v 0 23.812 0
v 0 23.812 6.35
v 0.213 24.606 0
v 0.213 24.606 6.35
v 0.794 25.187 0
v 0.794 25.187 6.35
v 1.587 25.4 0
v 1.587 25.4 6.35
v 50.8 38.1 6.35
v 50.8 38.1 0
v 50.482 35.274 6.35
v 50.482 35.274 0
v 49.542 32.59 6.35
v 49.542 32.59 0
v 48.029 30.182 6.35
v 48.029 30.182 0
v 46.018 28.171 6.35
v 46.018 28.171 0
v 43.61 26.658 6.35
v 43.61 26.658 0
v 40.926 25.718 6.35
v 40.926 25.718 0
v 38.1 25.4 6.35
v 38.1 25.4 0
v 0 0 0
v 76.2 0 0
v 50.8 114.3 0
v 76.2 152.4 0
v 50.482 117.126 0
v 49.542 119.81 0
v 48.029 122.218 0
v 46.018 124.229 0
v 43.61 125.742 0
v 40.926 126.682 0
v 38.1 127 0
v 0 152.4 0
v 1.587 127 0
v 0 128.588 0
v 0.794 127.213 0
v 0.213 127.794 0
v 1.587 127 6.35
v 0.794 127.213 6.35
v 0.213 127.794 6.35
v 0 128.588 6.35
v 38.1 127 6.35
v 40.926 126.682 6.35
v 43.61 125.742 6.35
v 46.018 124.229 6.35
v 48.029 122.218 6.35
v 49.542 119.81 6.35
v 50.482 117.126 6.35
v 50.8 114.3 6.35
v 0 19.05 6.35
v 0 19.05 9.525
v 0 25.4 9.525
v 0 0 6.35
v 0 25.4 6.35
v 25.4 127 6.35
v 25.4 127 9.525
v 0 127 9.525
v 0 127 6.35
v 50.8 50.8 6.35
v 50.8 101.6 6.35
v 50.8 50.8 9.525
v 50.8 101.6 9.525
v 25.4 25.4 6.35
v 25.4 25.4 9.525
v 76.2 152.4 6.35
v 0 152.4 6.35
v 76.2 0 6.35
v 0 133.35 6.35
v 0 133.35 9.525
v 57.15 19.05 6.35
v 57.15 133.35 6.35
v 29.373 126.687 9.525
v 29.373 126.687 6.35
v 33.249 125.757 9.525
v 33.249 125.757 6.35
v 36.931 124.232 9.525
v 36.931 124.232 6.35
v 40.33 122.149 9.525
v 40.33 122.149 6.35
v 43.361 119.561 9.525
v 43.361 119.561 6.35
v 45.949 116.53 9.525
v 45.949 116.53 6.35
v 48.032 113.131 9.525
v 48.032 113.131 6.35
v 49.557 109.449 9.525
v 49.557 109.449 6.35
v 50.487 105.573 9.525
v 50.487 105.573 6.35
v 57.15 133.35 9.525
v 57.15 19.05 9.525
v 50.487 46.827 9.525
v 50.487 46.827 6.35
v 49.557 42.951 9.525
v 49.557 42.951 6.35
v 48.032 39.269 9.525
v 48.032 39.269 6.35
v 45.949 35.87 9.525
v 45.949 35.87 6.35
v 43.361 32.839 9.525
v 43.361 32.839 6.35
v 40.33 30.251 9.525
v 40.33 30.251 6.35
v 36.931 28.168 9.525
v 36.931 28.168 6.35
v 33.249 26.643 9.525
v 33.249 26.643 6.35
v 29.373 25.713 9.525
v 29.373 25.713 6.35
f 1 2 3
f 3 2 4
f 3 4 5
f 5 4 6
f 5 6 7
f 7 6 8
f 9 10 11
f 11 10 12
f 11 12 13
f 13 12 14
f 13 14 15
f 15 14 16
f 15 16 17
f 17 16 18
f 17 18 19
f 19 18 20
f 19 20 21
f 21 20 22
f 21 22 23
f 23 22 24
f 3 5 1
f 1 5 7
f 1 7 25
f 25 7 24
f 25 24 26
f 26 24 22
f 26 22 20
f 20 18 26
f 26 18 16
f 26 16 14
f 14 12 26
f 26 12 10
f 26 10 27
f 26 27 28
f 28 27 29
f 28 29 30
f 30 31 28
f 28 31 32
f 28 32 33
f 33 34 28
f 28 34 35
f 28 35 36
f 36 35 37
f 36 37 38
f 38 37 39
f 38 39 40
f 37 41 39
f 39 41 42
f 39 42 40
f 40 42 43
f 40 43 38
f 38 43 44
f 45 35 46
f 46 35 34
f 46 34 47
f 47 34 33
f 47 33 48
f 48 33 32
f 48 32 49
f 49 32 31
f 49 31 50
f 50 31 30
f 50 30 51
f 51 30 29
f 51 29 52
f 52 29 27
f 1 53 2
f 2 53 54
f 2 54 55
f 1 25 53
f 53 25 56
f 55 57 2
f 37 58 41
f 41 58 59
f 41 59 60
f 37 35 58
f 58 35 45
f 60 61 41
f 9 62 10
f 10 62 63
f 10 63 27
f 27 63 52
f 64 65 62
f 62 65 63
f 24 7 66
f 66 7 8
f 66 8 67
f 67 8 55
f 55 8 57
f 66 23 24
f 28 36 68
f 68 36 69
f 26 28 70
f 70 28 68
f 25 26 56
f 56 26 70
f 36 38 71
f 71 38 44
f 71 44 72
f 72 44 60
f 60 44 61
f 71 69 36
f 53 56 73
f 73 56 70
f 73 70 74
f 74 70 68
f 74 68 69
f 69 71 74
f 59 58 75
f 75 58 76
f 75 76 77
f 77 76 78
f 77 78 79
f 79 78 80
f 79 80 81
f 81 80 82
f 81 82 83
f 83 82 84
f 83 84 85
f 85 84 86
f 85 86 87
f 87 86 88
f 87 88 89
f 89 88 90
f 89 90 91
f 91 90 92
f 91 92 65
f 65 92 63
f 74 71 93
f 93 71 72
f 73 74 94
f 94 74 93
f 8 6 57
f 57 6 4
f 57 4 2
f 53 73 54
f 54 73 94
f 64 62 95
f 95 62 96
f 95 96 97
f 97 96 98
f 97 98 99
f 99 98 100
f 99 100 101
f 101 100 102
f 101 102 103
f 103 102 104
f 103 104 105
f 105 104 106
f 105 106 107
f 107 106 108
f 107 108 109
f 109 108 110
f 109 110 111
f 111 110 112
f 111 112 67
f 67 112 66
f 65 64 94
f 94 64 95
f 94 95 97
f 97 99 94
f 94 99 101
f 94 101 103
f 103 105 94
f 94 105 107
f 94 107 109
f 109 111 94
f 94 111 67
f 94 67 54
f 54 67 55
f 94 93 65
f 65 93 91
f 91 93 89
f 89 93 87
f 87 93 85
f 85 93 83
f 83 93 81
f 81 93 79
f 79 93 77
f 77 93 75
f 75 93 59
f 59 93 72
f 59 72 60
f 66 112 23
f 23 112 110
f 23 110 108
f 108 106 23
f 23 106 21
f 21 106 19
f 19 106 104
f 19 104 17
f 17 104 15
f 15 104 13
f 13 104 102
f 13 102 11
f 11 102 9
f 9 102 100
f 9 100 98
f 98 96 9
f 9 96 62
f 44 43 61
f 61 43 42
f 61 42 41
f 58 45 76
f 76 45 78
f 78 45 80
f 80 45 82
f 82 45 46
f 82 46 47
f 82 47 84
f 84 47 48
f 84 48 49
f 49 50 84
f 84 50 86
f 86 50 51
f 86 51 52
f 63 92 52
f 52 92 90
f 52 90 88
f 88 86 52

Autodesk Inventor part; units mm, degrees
ref_plane "YZ Plane" through (0, 0, 0) normal (1, 0, 0) x (0, 1, 0)
ref_plane "XZ Plane" through (0, 0, 0) normal (0, 1, 0) x (-1, 0, 0)
ref_plane "XY Plane" through (0, 0, 0) normal (0, 0, 1) x (1, 0, 0)
sketch "Sketch1" plane through (0, 0, 0) normal (0, 0, 1) x (1, 0, 0)
  line L0 (0, 0) -> (76.2, 0)
  line L1 (76.2, 0) -> (76.2, 152.4)
  line L2 (76.2, 152.4) -> (0, 152.4)
  line L3 (0, 152.4) -> (0, 0)
  line L4 (0, 127) -> (50.8, 127)
  line L5 (50.8, 127) -> (50.8, 25.4)
  line L6 (50.8, 25.4) -> (0, 25.4)
  line L7 (0, 25.4) -> (0, 127)
  point P0 (0, 25.4)
  point P1 (76.2, 76.2)
  dimension "d0" = 101.6
  dimension "d1" = 50.8
  dimension "d2" = 25.4
  dimension "d4" = 25.4
  dimension "d9" = 25.4
extrude "Extrusion1" add sketch "Sketch1" along normal blind 6.35 contours L3 L6 L5 L4 L2 L1 L0
fillet "Fillet1" radius 12.7 2 edges at (50.8, 127, 3.175) (50.8, 25.4, 3.175)
fillet "Fillet2" radius 1.5875 2 edges at (0, 127, 3.175) (0, 25.4, 3.175)
sketch "Sketch2" plane through (0, 0, 6.35) normal (0, 0, 1) x (1, 0, 0)
  line L0 (0, 127) -> (25.4, 127)
  line L1 (50.8, 101.6) -> (50.8, 50.8)
  line L2 (25.4, 25.4) -> (19.0762, 25.4)
  line L3 (1.5875, 127) -> (38.1, 127) projected
  arc A0 (50.8, 101.6) -> (25.4, 127) centre (25.4, 101.6) ccw
  arc A1 (25.4, 25.4) -> (50.8, 50.8) centre (25.4, 50.8) ccw
  line L4 (38.1, 25.4) -> (1.5875, 25.4) projected
  line L5 (76.2, 0) -> (76.2, 152.4) projected
  line L6 (0, 127) -> (0, 133.35)
  line L7 (0, 133.35) -> (57.15, 133.35)
  line L8 (57.15, 133.35) -> (57.15, 19.05)
  line L9 (57.15, 19.05) -> (0, 19.05)
  line L10 (0, 19.05) -> (0, 25.4)
  line L11 (0, 25.4) -> (1.5875, 25.4)
  line L12 (0, 152.4) -> (0, 128.5875) projected
  line L13 (0, 23.8125) -> (0, 0) projected
  point P0 (0.7937, 25.4)
  dimension "d11" = 25.4
  dimension "d12" = 25.4
  dimension "d13" = 25.4
  dimension "d14" = 6.35
  dimension "d15" = 6.35
  dimension "d16" = 6.35
extrude "Extrusion2" add sketch "Sketch2" along normal blind 3.175
equation "\"d15\" = d14"
equation "\"d16\" = d14"
properties part number "ChassisInterfaceFix"
